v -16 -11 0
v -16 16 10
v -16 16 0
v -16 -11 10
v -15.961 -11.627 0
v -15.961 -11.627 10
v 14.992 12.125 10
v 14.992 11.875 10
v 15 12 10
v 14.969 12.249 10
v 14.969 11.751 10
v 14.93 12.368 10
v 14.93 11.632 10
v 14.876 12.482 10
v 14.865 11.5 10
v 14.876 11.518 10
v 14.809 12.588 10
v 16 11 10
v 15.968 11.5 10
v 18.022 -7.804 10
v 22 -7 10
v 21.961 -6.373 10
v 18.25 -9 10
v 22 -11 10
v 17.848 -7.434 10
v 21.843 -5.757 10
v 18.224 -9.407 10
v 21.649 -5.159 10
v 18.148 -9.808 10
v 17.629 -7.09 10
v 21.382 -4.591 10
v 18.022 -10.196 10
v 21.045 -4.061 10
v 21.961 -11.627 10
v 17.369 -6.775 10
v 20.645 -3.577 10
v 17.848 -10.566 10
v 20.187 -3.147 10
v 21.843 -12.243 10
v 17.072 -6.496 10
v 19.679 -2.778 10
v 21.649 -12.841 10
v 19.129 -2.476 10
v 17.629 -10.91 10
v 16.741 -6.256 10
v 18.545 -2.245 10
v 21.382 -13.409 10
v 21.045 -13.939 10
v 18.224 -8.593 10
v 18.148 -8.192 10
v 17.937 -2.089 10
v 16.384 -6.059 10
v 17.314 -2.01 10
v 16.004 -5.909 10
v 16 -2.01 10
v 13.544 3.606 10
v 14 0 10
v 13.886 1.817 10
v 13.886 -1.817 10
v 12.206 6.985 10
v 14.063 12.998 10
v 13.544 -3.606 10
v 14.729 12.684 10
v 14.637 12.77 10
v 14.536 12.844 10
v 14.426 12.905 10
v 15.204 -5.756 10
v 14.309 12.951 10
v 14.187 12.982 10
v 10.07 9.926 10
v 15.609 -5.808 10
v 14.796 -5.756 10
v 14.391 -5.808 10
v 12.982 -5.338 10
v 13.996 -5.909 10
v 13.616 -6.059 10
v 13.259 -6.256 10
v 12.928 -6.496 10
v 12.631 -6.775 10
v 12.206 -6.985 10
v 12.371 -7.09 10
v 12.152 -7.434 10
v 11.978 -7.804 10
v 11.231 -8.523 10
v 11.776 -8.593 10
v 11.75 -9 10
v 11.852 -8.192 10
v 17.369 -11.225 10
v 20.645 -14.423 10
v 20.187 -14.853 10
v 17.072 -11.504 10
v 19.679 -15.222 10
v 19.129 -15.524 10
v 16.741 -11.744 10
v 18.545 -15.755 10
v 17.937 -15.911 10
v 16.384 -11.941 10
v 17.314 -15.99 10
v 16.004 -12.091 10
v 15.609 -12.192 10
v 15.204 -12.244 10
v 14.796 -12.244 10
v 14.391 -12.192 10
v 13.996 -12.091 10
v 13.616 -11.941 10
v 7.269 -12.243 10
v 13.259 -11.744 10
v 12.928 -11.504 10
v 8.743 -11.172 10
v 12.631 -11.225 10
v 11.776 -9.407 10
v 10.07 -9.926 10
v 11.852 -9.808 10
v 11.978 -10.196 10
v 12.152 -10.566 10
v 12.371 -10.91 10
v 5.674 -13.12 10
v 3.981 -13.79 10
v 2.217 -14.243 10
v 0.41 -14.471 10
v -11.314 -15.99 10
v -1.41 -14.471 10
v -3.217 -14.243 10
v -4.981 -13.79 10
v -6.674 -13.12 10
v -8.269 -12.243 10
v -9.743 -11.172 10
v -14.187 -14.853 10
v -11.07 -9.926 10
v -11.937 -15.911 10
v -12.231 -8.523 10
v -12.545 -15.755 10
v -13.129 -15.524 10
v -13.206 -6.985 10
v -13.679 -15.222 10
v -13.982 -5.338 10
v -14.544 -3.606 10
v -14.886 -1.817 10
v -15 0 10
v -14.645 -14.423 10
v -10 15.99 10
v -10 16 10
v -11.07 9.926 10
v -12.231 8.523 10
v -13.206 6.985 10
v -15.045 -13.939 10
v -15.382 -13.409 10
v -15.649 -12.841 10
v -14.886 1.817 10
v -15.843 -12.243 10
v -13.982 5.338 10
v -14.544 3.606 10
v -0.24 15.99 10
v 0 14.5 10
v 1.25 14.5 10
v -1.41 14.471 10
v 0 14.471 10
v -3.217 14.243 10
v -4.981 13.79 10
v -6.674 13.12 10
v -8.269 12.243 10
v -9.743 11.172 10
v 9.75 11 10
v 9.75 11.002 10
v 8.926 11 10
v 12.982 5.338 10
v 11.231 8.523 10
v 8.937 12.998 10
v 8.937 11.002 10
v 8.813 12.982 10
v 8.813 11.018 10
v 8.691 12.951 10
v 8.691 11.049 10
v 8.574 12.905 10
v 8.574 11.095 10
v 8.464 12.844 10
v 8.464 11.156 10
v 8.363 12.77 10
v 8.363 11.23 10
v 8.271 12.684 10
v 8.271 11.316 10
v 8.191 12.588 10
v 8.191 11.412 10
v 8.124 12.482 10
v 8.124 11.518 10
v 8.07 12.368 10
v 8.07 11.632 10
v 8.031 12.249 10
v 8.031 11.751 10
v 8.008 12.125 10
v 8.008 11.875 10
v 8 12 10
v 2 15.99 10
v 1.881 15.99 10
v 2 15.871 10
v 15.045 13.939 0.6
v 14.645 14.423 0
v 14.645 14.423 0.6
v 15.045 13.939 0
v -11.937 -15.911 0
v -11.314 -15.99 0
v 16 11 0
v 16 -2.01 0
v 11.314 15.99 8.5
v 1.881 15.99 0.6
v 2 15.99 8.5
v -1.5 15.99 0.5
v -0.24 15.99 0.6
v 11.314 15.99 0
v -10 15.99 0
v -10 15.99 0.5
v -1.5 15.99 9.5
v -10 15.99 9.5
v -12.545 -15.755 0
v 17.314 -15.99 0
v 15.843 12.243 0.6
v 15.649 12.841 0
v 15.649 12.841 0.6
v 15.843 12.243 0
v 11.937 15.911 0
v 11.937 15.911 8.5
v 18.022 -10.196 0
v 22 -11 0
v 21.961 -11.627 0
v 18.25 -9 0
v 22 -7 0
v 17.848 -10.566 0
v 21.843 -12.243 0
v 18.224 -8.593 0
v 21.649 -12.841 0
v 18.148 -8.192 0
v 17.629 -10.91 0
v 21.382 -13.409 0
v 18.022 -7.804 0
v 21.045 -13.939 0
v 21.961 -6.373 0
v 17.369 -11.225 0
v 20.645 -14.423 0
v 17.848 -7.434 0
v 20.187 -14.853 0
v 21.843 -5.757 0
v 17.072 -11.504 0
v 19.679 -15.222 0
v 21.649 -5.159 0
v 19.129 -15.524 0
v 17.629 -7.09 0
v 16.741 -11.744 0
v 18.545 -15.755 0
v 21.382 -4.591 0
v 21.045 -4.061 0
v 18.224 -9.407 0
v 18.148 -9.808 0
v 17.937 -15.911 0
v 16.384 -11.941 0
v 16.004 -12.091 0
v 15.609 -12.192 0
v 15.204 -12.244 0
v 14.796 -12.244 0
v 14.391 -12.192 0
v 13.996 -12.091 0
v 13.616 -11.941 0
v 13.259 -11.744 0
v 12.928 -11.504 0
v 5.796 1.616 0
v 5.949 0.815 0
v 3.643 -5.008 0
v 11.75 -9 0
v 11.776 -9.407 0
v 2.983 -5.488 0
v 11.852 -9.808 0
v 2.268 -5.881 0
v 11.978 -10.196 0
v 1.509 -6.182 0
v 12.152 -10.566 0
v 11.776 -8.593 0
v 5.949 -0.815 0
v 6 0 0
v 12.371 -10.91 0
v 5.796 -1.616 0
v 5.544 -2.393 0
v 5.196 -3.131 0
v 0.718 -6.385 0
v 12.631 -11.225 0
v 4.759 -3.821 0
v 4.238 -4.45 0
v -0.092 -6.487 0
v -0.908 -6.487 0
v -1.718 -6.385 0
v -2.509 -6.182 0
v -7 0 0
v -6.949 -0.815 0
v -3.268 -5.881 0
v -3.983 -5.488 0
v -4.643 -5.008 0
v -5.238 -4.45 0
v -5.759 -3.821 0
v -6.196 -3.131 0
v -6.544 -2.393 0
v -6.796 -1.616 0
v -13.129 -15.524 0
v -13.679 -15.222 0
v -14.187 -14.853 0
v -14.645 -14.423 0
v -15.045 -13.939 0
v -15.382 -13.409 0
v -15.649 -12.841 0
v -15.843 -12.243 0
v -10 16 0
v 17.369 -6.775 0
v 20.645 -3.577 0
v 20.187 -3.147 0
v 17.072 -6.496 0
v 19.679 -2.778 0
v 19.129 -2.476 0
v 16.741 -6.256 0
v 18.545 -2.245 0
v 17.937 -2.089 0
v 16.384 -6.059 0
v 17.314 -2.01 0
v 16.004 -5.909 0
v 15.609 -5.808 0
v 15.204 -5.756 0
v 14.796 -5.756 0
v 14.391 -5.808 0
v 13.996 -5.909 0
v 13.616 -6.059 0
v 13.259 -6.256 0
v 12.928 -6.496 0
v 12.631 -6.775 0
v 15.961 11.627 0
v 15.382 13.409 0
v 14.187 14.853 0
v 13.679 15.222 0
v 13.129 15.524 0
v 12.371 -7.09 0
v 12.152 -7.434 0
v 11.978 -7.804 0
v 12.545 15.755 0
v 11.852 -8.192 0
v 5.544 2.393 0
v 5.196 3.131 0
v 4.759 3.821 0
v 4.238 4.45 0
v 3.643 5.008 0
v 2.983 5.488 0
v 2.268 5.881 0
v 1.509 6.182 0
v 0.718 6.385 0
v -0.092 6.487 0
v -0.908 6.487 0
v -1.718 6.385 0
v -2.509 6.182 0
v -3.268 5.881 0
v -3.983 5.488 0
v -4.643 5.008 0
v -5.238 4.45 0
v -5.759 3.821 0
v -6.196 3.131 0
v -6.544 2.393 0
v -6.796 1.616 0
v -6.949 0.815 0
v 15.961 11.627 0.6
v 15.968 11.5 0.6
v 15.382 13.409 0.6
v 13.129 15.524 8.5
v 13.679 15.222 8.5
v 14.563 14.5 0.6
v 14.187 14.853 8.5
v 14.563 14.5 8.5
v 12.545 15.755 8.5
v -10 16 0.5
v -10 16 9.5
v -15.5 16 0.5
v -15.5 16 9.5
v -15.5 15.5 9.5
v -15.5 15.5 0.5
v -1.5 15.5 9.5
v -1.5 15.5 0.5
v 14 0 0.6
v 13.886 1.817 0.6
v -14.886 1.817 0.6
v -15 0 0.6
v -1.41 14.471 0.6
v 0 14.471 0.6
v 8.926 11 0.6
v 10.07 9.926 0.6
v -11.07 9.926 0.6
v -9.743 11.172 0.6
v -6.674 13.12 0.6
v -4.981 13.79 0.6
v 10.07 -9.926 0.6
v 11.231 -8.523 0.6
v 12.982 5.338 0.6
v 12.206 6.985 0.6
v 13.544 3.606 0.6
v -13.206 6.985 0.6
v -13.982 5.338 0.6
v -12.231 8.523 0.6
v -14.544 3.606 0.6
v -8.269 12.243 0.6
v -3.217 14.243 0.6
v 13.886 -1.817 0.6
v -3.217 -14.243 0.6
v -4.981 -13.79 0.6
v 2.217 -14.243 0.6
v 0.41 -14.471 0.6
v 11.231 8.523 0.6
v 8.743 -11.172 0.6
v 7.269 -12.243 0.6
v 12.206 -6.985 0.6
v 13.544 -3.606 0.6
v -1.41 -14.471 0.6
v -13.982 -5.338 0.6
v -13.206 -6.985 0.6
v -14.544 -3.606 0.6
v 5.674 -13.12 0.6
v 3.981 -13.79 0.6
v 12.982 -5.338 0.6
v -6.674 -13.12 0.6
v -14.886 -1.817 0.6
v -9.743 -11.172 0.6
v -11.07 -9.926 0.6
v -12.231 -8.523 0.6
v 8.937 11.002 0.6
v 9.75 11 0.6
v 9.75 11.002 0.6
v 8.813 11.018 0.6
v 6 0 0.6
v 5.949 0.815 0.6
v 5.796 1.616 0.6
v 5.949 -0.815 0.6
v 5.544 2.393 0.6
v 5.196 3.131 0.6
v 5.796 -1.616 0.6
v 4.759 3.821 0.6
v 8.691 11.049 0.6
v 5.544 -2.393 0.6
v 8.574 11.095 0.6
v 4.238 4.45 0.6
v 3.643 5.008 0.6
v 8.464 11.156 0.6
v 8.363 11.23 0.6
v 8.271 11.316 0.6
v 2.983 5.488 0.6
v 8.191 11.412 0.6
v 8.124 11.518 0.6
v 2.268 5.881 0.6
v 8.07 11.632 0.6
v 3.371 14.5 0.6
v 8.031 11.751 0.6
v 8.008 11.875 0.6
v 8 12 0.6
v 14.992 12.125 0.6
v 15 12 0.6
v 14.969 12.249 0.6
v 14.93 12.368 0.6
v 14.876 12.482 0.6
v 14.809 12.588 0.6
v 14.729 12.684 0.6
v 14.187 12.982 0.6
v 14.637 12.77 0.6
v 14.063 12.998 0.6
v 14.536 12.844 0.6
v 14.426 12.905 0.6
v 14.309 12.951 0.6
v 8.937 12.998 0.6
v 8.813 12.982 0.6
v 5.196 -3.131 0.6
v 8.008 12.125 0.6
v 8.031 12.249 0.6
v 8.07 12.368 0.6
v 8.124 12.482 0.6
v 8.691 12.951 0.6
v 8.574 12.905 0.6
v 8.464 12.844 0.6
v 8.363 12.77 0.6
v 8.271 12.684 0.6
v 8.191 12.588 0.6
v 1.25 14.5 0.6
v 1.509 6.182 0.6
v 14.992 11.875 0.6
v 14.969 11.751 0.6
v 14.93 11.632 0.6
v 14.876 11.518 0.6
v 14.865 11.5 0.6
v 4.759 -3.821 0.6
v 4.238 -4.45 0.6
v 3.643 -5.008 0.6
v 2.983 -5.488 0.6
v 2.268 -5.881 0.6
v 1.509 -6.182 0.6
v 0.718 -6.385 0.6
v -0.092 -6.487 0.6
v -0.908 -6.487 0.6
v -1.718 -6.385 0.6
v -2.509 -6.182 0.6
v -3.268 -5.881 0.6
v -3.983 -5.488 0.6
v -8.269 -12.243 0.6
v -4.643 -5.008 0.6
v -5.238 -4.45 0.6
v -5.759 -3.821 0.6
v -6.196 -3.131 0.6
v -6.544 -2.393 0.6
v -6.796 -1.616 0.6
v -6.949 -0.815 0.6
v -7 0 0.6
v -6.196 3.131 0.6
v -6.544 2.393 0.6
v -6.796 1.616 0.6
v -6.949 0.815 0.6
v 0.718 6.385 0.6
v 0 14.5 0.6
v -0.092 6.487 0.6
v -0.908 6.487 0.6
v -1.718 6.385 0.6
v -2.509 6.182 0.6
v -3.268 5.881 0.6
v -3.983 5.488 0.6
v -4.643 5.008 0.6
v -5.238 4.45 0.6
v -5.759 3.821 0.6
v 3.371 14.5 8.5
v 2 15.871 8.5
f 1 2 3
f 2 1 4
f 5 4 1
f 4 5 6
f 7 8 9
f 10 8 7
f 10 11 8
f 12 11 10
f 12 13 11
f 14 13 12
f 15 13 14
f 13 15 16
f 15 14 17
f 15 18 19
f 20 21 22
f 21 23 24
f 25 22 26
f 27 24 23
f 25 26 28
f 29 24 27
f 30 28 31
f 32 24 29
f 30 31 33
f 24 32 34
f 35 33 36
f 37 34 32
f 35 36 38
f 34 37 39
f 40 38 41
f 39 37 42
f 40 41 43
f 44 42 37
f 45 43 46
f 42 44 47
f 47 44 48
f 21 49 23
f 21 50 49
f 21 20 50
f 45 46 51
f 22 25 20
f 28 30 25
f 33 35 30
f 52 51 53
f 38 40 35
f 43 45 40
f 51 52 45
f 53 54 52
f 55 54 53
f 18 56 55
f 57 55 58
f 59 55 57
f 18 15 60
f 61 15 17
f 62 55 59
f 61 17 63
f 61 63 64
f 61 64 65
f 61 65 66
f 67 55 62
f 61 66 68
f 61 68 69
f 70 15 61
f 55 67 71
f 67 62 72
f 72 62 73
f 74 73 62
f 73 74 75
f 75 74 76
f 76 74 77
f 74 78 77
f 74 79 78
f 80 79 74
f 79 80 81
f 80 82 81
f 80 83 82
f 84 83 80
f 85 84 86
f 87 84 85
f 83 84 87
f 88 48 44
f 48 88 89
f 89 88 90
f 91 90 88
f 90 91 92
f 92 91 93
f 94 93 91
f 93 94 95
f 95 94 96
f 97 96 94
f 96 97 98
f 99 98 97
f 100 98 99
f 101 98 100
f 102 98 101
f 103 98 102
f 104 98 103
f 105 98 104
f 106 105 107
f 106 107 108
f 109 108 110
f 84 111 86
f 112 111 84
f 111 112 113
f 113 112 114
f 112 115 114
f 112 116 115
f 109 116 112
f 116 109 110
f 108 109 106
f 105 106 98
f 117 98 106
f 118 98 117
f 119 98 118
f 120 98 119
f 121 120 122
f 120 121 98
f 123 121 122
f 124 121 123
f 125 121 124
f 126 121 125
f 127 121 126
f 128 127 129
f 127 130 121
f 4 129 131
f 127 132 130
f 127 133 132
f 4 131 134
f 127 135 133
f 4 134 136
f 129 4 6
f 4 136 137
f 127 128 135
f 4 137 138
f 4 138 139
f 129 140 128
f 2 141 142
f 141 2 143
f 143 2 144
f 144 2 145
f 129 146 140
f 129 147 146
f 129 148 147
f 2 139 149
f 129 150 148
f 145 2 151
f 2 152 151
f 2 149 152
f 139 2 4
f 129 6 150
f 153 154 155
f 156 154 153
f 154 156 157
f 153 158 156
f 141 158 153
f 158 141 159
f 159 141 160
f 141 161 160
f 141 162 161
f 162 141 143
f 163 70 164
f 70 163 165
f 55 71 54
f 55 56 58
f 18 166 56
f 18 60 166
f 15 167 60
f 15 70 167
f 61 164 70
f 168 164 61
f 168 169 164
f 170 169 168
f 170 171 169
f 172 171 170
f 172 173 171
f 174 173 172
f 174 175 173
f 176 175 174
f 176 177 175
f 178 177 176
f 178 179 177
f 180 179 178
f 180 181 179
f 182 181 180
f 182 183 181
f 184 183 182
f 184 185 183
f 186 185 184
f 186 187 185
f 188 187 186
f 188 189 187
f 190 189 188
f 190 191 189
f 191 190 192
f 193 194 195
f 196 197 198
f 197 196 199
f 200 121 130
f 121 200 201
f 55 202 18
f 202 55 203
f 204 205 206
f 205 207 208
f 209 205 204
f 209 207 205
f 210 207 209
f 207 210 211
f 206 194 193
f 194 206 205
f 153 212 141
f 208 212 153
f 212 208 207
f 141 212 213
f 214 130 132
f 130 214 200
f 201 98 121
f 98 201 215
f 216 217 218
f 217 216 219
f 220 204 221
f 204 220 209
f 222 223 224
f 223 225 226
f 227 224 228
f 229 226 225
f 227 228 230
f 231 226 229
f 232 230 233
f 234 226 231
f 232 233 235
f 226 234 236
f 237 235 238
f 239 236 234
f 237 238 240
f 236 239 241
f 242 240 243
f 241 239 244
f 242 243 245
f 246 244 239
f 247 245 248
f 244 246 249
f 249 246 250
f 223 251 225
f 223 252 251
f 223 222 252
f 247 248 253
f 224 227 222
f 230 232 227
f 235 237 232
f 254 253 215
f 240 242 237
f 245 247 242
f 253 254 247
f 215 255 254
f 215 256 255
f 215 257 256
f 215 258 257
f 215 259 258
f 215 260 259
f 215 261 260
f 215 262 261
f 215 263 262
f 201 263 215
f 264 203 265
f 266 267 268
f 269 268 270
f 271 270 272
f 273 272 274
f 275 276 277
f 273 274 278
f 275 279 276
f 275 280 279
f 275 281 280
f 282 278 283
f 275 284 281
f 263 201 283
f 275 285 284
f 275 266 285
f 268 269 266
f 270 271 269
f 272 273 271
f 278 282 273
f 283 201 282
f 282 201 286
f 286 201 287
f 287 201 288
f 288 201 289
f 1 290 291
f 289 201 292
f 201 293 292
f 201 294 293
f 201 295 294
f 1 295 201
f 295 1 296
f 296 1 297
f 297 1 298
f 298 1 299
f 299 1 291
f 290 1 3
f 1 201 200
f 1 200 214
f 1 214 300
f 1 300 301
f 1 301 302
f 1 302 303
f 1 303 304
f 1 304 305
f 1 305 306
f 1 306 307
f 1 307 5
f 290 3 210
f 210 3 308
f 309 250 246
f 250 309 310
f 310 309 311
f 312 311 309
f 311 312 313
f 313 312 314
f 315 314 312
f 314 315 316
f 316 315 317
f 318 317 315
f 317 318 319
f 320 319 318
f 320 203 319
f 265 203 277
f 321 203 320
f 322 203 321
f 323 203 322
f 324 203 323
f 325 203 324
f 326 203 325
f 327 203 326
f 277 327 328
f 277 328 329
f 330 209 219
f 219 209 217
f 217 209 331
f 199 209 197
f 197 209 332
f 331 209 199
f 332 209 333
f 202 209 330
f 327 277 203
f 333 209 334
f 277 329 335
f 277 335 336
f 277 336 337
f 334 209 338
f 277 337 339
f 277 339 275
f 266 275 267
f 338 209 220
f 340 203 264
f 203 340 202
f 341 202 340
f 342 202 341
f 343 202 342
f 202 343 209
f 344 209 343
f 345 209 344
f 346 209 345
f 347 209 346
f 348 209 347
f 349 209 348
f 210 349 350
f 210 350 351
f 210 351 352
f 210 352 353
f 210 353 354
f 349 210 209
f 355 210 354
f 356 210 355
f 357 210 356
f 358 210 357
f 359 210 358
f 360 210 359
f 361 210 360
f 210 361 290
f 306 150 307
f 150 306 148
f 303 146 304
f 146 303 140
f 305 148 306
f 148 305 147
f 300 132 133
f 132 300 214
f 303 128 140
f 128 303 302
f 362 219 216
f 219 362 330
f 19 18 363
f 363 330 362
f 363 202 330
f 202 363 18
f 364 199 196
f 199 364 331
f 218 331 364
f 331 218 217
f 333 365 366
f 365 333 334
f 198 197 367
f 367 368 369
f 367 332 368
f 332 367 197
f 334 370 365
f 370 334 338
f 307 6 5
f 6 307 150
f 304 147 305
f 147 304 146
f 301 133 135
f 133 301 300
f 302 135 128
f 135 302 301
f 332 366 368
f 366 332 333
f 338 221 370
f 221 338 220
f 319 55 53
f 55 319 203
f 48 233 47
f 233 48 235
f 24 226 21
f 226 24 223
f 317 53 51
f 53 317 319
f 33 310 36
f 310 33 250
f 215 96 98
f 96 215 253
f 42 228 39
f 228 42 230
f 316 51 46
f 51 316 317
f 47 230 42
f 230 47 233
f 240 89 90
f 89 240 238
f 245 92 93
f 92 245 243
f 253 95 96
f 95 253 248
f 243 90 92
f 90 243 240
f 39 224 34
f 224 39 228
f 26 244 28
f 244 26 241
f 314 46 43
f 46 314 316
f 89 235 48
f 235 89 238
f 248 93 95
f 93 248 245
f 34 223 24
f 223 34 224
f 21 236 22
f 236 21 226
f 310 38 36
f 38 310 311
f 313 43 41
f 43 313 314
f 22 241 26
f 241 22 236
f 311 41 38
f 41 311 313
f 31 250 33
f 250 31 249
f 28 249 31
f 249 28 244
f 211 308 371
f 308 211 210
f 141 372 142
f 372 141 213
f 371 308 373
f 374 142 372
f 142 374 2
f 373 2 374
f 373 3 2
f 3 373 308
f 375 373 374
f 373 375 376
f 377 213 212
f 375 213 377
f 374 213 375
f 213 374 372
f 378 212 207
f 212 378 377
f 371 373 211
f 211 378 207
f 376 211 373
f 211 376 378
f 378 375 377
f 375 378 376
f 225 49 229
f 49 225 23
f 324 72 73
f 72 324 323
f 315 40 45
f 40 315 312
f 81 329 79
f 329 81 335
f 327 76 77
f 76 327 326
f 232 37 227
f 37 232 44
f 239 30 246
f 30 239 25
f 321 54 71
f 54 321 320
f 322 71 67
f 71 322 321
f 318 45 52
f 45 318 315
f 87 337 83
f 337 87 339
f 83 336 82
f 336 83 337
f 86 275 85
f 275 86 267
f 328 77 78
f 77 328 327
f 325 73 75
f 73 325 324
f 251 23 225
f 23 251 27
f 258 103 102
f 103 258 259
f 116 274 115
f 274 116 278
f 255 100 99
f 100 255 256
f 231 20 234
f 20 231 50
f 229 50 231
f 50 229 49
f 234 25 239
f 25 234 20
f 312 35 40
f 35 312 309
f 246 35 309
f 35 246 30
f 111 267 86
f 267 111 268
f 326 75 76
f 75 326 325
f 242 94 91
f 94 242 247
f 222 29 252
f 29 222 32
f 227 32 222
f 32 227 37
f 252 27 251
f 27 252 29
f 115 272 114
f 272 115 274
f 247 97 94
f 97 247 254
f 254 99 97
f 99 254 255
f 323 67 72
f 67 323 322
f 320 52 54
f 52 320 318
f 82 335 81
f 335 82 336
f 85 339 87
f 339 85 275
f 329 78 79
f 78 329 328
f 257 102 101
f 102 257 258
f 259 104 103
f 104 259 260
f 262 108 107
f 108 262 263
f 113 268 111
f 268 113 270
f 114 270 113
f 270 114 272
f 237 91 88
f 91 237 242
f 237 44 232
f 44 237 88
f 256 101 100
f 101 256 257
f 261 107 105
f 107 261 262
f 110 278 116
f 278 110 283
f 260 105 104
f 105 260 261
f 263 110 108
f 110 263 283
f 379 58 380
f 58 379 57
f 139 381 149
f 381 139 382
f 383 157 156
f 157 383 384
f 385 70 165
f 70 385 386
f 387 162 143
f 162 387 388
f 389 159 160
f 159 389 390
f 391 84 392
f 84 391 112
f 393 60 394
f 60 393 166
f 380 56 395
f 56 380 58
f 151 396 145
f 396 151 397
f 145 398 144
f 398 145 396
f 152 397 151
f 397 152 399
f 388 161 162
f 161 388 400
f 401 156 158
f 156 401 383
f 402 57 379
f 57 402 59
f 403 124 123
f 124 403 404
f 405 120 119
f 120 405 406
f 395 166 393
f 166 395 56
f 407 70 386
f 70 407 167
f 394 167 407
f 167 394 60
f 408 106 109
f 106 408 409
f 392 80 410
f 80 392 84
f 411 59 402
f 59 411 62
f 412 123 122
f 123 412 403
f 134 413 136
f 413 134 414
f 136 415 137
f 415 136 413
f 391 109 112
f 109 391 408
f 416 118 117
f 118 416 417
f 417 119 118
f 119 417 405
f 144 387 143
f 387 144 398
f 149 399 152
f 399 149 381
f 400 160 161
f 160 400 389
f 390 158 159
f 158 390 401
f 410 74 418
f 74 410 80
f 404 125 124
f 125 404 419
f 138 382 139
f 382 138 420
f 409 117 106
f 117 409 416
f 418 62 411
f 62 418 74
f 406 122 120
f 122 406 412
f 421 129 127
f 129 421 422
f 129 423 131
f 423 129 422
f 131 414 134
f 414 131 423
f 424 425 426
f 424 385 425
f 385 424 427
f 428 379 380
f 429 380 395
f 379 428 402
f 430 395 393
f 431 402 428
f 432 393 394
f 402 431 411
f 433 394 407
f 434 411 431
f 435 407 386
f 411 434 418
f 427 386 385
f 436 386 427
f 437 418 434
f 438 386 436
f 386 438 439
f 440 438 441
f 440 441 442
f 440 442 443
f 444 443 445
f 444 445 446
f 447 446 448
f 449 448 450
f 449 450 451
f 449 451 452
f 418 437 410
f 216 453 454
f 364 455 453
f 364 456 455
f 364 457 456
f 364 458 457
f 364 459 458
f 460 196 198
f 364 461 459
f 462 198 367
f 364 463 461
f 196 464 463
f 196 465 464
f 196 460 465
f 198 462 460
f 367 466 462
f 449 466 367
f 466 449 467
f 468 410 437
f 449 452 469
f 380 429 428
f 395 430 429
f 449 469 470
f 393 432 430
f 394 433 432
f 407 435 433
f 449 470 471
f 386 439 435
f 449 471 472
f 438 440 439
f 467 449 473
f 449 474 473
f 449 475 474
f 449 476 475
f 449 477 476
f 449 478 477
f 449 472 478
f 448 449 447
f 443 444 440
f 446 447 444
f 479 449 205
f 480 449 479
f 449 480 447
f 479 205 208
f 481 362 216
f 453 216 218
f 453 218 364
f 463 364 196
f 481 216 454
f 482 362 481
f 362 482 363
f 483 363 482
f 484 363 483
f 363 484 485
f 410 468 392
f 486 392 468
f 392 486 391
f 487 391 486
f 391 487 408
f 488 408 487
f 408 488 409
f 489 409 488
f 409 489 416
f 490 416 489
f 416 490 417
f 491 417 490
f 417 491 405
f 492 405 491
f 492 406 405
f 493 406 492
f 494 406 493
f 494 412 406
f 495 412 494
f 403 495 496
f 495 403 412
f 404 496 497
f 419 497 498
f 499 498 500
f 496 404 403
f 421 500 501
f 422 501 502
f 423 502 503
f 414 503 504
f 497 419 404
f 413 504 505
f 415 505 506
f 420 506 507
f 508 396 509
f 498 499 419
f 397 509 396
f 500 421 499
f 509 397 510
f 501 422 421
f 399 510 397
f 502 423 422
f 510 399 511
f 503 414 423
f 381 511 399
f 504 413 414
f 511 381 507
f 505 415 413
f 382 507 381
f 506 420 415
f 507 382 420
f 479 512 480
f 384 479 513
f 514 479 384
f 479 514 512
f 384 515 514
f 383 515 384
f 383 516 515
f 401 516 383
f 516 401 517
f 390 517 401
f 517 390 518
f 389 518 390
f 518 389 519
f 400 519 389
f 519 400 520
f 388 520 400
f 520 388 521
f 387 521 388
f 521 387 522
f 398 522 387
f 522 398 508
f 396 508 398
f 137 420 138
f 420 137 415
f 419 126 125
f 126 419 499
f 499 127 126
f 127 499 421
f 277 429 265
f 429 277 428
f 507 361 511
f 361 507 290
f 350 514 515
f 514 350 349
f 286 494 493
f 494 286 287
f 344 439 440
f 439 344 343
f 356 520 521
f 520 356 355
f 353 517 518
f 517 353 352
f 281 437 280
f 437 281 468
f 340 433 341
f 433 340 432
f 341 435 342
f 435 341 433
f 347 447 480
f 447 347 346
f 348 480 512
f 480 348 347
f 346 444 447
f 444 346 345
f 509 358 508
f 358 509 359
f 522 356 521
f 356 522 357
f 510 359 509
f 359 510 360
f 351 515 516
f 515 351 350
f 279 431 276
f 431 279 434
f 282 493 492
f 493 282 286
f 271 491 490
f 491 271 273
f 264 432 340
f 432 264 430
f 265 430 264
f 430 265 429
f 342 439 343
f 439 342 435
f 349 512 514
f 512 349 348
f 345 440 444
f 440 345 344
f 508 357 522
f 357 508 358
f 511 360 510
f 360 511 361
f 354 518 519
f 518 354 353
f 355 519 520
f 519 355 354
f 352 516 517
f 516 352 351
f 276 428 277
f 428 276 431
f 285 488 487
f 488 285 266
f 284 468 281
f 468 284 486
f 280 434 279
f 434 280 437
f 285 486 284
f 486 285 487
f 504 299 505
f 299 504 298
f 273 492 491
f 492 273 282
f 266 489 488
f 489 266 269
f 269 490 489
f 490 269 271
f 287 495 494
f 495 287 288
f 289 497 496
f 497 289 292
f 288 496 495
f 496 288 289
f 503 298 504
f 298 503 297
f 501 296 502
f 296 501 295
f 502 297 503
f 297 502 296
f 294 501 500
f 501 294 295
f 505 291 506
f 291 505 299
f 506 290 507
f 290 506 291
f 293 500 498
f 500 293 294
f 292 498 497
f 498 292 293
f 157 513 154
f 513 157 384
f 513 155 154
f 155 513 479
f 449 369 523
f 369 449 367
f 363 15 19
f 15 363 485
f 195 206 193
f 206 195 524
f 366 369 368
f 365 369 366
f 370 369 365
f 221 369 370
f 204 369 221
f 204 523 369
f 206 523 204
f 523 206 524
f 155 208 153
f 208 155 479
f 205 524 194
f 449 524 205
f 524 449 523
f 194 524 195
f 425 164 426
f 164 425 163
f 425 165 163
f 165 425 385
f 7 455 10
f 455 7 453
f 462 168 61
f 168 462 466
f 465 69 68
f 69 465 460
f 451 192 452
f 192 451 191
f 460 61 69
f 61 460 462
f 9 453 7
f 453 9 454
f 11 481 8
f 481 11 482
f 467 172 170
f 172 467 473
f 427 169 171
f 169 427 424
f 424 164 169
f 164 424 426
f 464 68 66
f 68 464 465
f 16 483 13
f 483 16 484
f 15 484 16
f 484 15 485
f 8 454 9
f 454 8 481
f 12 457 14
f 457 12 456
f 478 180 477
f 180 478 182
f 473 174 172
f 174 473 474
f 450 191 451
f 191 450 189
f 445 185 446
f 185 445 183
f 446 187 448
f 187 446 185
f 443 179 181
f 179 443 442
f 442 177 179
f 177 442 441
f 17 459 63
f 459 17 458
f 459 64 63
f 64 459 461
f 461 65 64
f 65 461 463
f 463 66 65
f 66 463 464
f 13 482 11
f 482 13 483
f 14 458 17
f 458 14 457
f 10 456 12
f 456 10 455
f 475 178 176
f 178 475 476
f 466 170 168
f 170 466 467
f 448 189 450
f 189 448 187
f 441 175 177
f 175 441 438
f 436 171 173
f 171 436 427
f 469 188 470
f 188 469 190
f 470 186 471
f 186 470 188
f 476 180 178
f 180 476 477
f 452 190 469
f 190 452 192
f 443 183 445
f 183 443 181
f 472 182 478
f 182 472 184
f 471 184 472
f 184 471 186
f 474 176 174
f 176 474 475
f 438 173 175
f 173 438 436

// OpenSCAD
$fn = 50;


union() {
	difference() {
		union() {
			translate(v = [0, 0, 0]) {
				rotate(a = [0, 0, 0]) {
					hull() {
						translate(v = [-11.0000000000, 11.0000000000, 0]) {
							rotate(a = [0, 0, 0]) {
								translate(v = [0, 0, 0]) {
									rotate(a = [0, 0, 0]) {
										cylinder(h = 10, r = 5);
									}
								}
							}
						}
						translate(v = [11.0000000000, 11.0000000000, 0]) {
							rotate(a = [0, 0, 0]) {
								translate(v = [0, 0, 0]) {
									rotate(a = [0, 0, 0]) {
										cylinder(h = 10, r = 5);
									}
								}
							}
						}
						translate(v = [-11.0000000000, -11.0000000000, 0]) {
							rotate(a = [0, 0, 0]) {
								translate(v = [0, 0, 0]) {
									rotate(a = [0, 0, 0]) {
										cylinder(h = 10, r = 5);
									}
								}
							}
						}
						translate(v = [11.0000000000, -11.0000000000, 0]) {
							rotate(a = [0, 0, 0]) {
								translate(v = [0, 0, 0]) {
									rotate(a = [0, 0, 0]) {
										cylinder(h = 10, r = 5);
									}
								}
							}
						}
					}
				}
			}
			translate(v = [7.5000000000, -9.0000000000, 0]) {
				rotate(a = [0, 0, 0]) {
					hull() {
						translate(v = [-9.5000000000, 2.0000000000, 0]) {
							rotate(a = [0, 0, 0]) {
								translate(v = [0, 0, 0]) {
									rotate(a = [0, 0, 0]) {
										cylinder(h = 10, r = 5);
									}
								}
							}
						}
						translate(v = [9.5000000000, 2.0000000000, 0]) {
							rotate(a = [0, 0, 0]) {
								translate(v = [0, 0, 0]) {
									rotate(a = [0, 0, 0]) {
										cylinder(h = 10, r = 5);
									}
								}
							}
						}
						translate(v = [-9.5000000000, -2.0000000000, 0]) {
							rotate(a = [0, 0, 0]) {
								translate(v = [0, 0, 0]) {
									rotate(a = [0, 0, 0]) {
										cylinder(h = 10, r = 5);
									}
								}
							}
						}
						translate(v = [9.5000000000, -2.0000000000, 0]) {
							rotate(a = [0, 0, 0]) {
								translate(v = [0, 0, 0]) {
									rotate(a = [0, 0, 0]) {
										cylinder(h = 10, r = 5);
									}
								}
							}
						}
					}
				}
			}
			translate(v = [-16.0000000000, 10.0000000000, 0]) {
				rotate(a = [0, 0, 0]) {
					cube(size = [6, 6, 10]);
				}
			}
		}
		union() {
			translate(v = [-15.5000000000, 15.5000000000, 0.5000000000]) {
				rotate(a = [0, 0, 0]) {
					cube(size = [14, 0.5000000000, 9.0000000000]);
				}
			}
			translate(v = [15.0000000000, -9.0000000000, -125.0000000000]) {
				rotate(a = [0, 0, 0]) {
					cylinder(h = 250, r = 3.2500000000);
				}
			}
			translate(v = [-0.5000000000, 0.0000000000, 0.6000000000]) {
				rotate(a = [0, 0, 0]) {
					cylinder(h = 12.4000000000, r = 14.5000000000);
				}
			}
			translate(v = [-0.5000000000, 0.0000000000, -5.0000000000]) {
				rotate(a = [0, 0, 0]) {
					cylinder(h = 10, r = 6.5000000000);
				}
			}
			translate(v = [0.0000000000, 11.5000000000, 0.6000000000]) {
				rotate(a = [0, 0, 0]) {
					cube(size = [16.0000000000, 3, 12.4000000000]);
				}
			}
			translate(v = [2.0000000000, 11.5000000000, 8.5000000000]) {
				rotate(a = [0, 0, 0]) {
					cube(size = [14.0000000000, 6, 1.5000000000]);
				}
			}
			translate(v = [-3.0000000000, 18.7500000000, 0.6000000000]) {
				rotate(a = [0, 0, -45]) {
					cube(size = [10, 1.5000000000, 12.4000000000]);
				}
			}
			translate(v = [2.2500000000, 11.0000000000, 0.6000000000]) {
				rotate(a = [0, 0, 0]) {
					cube(size = [7.5000000000, 2, 9.4000000000]);
				}
			}
		}
	}
	union() {
		translate(v = [11.5000000000, 12, 0]) {
			rotate(a = [0, 0, 0]) {
				hull() {
					translate(v = [2.5000000000, 0, 0]) {
						rotate(a = [0, 0, 0]) {
							translate(v = [0, 0, 0]) {
								rotate(a = [0, 0, 0]) {
									cylinder(h = 10, r = 1.0000000000);
								}
							}
						}
					}
					translate(v = [-2.5000000000, 0, 0]) {
						rotate(a = [0, 0, 0]) {
							translate(v = [0, 0, 0]) {
								rotate(a = [0, 0, 0]) {
									cylinder(h = 10, r = 1.0000000000);
								}
							}
						}
					}
				}
			}
		}
	}
}
